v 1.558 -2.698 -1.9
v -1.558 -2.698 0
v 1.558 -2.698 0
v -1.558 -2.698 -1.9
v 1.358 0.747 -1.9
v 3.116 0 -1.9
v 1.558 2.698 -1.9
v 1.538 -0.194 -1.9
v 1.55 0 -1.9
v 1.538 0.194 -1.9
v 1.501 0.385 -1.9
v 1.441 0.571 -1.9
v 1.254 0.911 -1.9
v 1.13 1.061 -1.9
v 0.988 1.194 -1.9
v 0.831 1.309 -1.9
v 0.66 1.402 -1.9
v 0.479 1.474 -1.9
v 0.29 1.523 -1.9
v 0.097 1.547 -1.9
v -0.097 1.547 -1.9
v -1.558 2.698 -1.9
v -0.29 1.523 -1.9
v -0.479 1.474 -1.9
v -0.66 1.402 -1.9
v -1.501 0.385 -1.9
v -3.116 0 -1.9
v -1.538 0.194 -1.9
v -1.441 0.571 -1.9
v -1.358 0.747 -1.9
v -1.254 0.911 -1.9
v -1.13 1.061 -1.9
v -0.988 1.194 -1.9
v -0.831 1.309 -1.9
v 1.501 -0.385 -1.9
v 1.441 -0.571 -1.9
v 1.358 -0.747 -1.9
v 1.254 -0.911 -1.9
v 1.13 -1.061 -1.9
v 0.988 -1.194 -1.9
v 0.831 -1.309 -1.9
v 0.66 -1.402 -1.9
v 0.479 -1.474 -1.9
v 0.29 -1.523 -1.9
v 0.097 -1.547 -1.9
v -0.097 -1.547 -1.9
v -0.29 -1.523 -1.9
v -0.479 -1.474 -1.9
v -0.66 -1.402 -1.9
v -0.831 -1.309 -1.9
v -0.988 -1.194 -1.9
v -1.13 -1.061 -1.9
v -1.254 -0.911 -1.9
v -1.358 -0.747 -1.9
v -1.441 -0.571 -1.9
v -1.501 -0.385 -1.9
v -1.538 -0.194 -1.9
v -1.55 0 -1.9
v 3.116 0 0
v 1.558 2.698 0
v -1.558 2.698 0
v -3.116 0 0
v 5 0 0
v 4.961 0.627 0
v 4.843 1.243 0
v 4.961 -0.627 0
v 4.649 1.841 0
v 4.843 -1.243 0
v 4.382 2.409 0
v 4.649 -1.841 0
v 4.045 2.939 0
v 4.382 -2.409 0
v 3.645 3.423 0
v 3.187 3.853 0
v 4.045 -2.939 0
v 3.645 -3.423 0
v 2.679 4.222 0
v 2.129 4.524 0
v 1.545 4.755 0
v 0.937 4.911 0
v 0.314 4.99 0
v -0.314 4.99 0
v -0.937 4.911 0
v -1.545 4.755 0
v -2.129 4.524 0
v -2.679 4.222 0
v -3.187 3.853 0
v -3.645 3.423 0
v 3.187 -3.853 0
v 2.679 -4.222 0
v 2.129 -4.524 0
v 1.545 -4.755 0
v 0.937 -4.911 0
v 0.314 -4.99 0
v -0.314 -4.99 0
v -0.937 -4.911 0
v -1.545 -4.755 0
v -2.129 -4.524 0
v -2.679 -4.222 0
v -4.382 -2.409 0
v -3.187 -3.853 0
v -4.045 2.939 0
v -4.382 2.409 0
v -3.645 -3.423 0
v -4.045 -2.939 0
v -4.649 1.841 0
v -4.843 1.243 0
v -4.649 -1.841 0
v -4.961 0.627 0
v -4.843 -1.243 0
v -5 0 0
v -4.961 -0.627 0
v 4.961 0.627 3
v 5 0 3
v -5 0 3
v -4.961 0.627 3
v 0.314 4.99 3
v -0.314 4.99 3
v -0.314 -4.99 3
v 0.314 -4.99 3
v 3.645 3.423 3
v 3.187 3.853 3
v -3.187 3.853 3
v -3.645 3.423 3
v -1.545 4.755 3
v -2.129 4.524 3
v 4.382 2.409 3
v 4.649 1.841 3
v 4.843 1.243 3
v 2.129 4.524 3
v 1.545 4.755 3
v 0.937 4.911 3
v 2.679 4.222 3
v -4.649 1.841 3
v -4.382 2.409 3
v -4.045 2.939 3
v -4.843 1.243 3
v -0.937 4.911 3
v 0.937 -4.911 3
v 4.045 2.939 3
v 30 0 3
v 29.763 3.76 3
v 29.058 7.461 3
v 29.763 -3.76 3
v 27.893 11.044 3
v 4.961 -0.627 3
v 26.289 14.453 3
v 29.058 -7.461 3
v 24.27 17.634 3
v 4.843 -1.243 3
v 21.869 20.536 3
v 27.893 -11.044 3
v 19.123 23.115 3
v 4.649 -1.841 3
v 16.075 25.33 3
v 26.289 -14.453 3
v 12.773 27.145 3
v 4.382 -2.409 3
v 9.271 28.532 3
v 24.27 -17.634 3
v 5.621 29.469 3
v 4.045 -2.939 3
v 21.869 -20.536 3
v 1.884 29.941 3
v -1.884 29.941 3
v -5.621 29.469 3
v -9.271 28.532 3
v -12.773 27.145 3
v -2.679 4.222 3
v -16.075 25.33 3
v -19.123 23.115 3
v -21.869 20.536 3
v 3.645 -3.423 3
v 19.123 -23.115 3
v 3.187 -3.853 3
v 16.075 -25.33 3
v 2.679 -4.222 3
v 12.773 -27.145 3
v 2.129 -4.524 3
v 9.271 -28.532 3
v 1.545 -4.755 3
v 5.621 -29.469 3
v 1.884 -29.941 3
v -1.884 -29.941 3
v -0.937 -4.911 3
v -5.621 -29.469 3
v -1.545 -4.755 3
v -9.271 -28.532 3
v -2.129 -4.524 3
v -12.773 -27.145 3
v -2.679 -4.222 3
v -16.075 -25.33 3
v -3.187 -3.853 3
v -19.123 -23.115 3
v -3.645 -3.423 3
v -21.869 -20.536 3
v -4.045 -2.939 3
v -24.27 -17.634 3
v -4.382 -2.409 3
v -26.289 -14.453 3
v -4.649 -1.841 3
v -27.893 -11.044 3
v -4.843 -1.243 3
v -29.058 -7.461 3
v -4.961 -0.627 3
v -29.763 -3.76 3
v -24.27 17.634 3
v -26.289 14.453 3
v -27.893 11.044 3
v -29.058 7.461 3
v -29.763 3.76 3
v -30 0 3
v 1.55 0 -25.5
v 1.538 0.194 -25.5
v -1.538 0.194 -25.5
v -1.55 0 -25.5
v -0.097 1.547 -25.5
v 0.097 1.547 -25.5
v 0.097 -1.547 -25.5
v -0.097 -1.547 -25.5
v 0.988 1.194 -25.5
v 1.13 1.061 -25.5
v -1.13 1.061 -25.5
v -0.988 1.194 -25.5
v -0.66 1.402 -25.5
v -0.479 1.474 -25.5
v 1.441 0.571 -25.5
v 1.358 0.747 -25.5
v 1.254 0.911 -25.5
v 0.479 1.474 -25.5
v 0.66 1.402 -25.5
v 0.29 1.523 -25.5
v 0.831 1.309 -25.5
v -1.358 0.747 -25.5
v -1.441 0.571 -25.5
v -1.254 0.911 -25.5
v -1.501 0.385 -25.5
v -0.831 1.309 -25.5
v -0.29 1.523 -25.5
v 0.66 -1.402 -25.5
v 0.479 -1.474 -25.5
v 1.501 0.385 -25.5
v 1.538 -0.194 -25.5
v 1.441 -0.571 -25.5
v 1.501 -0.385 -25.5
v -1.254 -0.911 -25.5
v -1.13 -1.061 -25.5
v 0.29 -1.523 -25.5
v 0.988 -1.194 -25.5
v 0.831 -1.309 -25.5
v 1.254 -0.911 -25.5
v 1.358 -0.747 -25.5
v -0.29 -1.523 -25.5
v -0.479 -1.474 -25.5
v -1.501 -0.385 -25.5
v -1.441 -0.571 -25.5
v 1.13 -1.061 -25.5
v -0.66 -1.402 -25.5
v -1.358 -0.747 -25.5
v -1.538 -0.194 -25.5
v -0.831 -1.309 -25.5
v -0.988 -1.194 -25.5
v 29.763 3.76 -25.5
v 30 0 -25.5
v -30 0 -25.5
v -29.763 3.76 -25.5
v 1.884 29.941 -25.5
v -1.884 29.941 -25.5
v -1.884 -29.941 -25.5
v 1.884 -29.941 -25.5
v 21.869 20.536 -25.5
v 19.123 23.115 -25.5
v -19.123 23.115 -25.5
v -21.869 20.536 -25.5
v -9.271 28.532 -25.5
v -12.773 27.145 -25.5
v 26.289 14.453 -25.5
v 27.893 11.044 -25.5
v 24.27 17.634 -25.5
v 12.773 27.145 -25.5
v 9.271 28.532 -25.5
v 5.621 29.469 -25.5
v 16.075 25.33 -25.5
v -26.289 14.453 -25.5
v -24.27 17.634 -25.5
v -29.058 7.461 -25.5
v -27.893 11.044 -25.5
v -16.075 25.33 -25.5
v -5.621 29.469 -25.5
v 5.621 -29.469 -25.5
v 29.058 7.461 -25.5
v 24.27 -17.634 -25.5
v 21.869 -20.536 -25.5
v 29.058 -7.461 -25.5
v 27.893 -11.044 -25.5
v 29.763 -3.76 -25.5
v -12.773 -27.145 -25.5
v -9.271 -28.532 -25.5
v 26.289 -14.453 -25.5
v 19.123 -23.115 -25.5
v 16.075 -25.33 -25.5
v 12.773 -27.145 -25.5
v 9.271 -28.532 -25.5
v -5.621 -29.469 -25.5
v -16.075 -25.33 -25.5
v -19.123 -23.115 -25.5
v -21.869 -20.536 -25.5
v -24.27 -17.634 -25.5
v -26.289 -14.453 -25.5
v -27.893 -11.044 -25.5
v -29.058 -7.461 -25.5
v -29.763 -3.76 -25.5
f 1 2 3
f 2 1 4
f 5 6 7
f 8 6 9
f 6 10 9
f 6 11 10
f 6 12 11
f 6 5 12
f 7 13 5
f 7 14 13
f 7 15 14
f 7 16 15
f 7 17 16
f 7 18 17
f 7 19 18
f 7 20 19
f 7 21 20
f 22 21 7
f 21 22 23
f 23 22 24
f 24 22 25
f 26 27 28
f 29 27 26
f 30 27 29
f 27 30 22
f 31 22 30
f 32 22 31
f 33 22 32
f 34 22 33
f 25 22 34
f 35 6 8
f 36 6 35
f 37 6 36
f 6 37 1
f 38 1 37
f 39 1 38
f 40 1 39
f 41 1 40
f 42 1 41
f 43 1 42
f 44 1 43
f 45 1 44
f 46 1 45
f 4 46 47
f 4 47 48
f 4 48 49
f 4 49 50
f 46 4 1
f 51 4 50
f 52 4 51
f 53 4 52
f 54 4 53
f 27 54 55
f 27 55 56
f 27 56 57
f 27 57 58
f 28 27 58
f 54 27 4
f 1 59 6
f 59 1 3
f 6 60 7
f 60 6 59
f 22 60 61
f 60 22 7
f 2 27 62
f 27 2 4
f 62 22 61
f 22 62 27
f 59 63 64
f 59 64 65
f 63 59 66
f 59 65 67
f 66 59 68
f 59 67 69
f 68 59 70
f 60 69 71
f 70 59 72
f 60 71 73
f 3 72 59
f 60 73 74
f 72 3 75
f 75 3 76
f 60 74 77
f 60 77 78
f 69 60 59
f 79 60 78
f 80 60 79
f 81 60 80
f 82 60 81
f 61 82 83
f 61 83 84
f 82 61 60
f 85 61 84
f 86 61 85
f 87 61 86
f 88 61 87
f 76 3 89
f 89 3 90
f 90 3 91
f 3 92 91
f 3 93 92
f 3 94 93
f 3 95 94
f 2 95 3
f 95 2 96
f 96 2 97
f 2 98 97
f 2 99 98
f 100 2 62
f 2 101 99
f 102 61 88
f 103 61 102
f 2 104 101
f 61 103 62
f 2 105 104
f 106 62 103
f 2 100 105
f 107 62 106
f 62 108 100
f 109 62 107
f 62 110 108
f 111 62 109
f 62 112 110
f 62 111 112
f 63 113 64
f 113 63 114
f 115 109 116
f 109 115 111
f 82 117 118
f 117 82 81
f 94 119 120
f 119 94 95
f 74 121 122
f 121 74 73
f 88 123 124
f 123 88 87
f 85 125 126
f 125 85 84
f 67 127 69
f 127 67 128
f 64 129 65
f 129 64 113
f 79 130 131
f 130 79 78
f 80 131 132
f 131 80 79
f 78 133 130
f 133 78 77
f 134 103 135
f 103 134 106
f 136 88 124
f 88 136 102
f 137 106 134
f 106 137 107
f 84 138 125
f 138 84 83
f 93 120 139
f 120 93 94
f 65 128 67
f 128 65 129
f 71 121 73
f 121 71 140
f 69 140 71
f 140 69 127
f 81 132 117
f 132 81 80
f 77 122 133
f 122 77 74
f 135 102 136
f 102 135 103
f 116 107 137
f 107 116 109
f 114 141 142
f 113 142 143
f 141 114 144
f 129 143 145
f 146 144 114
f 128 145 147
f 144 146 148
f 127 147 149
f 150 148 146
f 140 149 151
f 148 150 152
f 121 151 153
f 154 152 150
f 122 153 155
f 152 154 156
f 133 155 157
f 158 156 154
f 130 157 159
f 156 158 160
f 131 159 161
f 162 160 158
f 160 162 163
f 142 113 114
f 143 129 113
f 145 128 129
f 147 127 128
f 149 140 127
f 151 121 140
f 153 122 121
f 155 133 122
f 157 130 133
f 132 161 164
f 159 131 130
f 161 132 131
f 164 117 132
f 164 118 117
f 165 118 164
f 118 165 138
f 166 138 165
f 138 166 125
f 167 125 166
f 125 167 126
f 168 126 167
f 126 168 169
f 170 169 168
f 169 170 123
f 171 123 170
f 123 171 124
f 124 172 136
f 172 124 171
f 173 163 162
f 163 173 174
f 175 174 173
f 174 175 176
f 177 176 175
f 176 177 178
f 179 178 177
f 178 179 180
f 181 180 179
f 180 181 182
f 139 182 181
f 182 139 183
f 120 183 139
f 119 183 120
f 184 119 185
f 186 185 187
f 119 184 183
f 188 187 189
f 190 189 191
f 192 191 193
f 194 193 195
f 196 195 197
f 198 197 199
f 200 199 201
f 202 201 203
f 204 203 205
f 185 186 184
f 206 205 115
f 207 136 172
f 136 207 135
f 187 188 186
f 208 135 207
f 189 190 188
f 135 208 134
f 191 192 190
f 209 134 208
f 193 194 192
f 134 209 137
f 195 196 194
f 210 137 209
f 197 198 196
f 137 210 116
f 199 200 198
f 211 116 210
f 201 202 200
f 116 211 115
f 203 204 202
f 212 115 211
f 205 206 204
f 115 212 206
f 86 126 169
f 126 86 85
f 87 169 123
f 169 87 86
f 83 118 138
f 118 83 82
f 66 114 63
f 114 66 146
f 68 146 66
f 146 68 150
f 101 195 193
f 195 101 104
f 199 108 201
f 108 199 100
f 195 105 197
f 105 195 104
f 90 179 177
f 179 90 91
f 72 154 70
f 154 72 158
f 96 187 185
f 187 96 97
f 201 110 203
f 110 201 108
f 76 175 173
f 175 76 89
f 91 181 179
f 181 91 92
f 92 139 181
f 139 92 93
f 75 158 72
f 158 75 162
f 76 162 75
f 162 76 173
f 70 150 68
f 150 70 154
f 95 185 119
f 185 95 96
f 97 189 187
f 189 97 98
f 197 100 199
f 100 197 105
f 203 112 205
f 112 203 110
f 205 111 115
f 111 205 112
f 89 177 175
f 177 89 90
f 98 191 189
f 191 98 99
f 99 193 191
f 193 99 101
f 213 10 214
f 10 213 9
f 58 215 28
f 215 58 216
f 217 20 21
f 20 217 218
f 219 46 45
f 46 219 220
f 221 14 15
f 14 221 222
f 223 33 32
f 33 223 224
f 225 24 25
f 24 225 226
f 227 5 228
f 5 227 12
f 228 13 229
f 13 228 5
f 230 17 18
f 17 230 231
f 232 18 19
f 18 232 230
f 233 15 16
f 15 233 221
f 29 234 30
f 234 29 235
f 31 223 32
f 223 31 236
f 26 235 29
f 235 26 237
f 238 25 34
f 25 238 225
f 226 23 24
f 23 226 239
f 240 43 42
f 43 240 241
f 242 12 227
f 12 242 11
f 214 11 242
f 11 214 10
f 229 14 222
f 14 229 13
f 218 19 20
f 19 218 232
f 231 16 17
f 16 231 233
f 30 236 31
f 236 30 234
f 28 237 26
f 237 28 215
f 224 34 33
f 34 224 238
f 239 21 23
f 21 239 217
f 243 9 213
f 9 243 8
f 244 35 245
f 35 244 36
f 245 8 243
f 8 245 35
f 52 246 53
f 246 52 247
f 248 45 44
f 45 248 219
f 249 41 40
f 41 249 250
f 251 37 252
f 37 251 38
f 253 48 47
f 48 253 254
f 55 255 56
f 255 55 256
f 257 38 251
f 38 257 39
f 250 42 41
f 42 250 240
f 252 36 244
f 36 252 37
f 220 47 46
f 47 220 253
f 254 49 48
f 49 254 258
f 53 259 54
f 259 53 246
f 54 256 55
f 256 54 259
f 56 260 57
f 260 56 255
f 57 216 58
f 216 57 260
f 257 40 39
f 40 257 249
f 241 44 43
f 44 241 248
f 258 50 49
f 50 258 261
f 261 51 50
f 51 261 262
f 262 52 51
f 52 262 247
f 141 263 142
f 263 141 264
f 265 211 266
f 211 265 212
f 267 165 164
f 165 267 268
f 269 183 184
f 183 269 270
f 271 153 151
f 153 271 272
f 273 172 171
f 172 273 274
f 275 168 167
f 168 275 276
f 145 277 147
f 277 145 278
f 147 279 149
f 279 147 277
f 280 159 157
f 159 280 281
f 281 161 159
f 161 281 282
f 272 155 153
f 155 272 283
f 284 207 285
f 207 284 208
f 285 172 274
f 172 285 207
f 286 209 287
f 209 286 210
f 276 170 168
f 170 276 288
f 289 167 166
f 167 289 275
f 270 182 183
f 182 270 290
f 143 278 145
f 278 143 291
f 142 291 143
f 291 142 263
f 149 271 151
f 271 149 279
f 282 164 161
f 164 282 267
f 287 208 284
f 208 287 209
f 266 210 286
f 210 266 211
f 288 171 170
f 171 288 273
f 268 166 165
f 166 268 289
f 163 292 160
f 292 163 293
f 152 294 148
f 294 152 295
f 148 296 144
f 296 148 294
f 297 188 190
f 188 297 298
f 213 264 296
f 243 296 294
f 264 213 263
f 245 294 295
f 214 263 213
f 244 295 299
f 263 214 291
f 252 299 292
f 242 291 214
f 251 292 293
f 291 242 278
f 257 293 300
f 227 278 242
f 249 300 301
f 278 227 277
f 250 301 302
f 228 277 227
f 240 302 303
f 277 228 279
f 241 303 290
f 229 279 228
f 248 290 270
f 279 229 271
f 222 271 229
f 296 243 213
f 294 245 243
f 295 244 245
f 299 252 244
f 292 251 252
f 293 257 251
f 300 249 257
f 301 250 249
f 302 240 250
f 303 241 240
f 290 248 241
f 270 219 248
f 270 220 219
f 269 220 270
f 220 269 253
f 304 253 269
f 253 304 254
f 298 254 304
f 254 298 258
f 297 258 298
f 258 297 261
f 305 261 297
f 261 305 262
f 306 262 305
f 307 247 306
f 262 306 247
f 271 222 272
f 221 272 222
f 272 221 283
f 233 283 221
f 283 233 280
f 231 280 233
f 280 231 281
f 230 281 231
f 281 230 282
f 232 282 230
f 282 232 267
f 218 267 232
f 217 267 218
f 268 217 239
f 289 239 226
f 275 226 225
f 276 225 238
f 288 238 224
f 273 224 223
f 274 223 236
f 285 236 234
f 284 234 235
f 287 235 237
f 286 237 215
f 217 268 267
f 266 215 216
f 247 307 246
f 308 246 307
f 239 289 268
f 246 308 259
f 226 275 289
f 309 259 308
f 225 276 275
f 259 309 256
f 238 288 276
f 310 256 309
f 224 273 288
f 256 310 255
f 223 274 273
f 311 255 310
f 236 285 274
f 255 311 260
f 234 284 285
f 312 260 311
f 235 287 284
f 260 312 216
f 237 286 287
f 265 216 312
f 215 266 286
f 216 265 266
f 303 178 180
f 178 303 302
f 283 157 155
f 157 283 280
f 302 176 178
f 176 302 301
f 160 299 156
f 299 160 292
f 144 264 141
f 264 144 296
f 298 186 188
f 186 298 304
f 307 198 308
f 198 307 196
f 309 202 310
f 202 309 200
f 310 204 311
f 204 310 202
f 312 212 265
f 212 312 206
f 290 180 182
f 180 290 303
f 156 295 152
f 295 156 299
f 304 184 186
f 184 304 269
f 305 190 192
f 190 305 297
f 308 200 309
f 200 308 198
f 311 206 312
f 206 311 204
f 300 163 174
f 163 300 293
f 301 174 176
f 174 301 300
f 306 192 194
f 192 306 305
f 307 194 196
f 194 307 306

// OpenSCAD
$fn = 50;


difference() {
	union() {
		translate(v = [0, 0, -25.5000000000]) {
			cylinder(h = 28.5000000000, r = 30.0000000000);
		}
	}
	union() {
		translate(v = [0, 0, 0]) {
			rotate(a = [0, 0, 0]) {
				difference() {
					union() {
						translate(v = [0, 0, -1.9000000000]) {
							linear_extrude(height = 1.9000000000) {
								polygon(points = [[3.1158000000, 0.0000000000], [1.5579000000, 2.6983619531], [-1.5579000000, 2.6983619531], [-3.1158000000, 0.0000000000], [-1.5579000000, -2.6983619531], [1.5579000000, -2.6983619531]]);
							}
						}
					}
					union();
				}
			}
		}
		#cylinder(h = 3, r = 5.0000000000);
		#translate(v = [0, 0, -100.0000000000]) {
			cylinder(h = 200, r = 1.5500000000);
		}
	}
}
